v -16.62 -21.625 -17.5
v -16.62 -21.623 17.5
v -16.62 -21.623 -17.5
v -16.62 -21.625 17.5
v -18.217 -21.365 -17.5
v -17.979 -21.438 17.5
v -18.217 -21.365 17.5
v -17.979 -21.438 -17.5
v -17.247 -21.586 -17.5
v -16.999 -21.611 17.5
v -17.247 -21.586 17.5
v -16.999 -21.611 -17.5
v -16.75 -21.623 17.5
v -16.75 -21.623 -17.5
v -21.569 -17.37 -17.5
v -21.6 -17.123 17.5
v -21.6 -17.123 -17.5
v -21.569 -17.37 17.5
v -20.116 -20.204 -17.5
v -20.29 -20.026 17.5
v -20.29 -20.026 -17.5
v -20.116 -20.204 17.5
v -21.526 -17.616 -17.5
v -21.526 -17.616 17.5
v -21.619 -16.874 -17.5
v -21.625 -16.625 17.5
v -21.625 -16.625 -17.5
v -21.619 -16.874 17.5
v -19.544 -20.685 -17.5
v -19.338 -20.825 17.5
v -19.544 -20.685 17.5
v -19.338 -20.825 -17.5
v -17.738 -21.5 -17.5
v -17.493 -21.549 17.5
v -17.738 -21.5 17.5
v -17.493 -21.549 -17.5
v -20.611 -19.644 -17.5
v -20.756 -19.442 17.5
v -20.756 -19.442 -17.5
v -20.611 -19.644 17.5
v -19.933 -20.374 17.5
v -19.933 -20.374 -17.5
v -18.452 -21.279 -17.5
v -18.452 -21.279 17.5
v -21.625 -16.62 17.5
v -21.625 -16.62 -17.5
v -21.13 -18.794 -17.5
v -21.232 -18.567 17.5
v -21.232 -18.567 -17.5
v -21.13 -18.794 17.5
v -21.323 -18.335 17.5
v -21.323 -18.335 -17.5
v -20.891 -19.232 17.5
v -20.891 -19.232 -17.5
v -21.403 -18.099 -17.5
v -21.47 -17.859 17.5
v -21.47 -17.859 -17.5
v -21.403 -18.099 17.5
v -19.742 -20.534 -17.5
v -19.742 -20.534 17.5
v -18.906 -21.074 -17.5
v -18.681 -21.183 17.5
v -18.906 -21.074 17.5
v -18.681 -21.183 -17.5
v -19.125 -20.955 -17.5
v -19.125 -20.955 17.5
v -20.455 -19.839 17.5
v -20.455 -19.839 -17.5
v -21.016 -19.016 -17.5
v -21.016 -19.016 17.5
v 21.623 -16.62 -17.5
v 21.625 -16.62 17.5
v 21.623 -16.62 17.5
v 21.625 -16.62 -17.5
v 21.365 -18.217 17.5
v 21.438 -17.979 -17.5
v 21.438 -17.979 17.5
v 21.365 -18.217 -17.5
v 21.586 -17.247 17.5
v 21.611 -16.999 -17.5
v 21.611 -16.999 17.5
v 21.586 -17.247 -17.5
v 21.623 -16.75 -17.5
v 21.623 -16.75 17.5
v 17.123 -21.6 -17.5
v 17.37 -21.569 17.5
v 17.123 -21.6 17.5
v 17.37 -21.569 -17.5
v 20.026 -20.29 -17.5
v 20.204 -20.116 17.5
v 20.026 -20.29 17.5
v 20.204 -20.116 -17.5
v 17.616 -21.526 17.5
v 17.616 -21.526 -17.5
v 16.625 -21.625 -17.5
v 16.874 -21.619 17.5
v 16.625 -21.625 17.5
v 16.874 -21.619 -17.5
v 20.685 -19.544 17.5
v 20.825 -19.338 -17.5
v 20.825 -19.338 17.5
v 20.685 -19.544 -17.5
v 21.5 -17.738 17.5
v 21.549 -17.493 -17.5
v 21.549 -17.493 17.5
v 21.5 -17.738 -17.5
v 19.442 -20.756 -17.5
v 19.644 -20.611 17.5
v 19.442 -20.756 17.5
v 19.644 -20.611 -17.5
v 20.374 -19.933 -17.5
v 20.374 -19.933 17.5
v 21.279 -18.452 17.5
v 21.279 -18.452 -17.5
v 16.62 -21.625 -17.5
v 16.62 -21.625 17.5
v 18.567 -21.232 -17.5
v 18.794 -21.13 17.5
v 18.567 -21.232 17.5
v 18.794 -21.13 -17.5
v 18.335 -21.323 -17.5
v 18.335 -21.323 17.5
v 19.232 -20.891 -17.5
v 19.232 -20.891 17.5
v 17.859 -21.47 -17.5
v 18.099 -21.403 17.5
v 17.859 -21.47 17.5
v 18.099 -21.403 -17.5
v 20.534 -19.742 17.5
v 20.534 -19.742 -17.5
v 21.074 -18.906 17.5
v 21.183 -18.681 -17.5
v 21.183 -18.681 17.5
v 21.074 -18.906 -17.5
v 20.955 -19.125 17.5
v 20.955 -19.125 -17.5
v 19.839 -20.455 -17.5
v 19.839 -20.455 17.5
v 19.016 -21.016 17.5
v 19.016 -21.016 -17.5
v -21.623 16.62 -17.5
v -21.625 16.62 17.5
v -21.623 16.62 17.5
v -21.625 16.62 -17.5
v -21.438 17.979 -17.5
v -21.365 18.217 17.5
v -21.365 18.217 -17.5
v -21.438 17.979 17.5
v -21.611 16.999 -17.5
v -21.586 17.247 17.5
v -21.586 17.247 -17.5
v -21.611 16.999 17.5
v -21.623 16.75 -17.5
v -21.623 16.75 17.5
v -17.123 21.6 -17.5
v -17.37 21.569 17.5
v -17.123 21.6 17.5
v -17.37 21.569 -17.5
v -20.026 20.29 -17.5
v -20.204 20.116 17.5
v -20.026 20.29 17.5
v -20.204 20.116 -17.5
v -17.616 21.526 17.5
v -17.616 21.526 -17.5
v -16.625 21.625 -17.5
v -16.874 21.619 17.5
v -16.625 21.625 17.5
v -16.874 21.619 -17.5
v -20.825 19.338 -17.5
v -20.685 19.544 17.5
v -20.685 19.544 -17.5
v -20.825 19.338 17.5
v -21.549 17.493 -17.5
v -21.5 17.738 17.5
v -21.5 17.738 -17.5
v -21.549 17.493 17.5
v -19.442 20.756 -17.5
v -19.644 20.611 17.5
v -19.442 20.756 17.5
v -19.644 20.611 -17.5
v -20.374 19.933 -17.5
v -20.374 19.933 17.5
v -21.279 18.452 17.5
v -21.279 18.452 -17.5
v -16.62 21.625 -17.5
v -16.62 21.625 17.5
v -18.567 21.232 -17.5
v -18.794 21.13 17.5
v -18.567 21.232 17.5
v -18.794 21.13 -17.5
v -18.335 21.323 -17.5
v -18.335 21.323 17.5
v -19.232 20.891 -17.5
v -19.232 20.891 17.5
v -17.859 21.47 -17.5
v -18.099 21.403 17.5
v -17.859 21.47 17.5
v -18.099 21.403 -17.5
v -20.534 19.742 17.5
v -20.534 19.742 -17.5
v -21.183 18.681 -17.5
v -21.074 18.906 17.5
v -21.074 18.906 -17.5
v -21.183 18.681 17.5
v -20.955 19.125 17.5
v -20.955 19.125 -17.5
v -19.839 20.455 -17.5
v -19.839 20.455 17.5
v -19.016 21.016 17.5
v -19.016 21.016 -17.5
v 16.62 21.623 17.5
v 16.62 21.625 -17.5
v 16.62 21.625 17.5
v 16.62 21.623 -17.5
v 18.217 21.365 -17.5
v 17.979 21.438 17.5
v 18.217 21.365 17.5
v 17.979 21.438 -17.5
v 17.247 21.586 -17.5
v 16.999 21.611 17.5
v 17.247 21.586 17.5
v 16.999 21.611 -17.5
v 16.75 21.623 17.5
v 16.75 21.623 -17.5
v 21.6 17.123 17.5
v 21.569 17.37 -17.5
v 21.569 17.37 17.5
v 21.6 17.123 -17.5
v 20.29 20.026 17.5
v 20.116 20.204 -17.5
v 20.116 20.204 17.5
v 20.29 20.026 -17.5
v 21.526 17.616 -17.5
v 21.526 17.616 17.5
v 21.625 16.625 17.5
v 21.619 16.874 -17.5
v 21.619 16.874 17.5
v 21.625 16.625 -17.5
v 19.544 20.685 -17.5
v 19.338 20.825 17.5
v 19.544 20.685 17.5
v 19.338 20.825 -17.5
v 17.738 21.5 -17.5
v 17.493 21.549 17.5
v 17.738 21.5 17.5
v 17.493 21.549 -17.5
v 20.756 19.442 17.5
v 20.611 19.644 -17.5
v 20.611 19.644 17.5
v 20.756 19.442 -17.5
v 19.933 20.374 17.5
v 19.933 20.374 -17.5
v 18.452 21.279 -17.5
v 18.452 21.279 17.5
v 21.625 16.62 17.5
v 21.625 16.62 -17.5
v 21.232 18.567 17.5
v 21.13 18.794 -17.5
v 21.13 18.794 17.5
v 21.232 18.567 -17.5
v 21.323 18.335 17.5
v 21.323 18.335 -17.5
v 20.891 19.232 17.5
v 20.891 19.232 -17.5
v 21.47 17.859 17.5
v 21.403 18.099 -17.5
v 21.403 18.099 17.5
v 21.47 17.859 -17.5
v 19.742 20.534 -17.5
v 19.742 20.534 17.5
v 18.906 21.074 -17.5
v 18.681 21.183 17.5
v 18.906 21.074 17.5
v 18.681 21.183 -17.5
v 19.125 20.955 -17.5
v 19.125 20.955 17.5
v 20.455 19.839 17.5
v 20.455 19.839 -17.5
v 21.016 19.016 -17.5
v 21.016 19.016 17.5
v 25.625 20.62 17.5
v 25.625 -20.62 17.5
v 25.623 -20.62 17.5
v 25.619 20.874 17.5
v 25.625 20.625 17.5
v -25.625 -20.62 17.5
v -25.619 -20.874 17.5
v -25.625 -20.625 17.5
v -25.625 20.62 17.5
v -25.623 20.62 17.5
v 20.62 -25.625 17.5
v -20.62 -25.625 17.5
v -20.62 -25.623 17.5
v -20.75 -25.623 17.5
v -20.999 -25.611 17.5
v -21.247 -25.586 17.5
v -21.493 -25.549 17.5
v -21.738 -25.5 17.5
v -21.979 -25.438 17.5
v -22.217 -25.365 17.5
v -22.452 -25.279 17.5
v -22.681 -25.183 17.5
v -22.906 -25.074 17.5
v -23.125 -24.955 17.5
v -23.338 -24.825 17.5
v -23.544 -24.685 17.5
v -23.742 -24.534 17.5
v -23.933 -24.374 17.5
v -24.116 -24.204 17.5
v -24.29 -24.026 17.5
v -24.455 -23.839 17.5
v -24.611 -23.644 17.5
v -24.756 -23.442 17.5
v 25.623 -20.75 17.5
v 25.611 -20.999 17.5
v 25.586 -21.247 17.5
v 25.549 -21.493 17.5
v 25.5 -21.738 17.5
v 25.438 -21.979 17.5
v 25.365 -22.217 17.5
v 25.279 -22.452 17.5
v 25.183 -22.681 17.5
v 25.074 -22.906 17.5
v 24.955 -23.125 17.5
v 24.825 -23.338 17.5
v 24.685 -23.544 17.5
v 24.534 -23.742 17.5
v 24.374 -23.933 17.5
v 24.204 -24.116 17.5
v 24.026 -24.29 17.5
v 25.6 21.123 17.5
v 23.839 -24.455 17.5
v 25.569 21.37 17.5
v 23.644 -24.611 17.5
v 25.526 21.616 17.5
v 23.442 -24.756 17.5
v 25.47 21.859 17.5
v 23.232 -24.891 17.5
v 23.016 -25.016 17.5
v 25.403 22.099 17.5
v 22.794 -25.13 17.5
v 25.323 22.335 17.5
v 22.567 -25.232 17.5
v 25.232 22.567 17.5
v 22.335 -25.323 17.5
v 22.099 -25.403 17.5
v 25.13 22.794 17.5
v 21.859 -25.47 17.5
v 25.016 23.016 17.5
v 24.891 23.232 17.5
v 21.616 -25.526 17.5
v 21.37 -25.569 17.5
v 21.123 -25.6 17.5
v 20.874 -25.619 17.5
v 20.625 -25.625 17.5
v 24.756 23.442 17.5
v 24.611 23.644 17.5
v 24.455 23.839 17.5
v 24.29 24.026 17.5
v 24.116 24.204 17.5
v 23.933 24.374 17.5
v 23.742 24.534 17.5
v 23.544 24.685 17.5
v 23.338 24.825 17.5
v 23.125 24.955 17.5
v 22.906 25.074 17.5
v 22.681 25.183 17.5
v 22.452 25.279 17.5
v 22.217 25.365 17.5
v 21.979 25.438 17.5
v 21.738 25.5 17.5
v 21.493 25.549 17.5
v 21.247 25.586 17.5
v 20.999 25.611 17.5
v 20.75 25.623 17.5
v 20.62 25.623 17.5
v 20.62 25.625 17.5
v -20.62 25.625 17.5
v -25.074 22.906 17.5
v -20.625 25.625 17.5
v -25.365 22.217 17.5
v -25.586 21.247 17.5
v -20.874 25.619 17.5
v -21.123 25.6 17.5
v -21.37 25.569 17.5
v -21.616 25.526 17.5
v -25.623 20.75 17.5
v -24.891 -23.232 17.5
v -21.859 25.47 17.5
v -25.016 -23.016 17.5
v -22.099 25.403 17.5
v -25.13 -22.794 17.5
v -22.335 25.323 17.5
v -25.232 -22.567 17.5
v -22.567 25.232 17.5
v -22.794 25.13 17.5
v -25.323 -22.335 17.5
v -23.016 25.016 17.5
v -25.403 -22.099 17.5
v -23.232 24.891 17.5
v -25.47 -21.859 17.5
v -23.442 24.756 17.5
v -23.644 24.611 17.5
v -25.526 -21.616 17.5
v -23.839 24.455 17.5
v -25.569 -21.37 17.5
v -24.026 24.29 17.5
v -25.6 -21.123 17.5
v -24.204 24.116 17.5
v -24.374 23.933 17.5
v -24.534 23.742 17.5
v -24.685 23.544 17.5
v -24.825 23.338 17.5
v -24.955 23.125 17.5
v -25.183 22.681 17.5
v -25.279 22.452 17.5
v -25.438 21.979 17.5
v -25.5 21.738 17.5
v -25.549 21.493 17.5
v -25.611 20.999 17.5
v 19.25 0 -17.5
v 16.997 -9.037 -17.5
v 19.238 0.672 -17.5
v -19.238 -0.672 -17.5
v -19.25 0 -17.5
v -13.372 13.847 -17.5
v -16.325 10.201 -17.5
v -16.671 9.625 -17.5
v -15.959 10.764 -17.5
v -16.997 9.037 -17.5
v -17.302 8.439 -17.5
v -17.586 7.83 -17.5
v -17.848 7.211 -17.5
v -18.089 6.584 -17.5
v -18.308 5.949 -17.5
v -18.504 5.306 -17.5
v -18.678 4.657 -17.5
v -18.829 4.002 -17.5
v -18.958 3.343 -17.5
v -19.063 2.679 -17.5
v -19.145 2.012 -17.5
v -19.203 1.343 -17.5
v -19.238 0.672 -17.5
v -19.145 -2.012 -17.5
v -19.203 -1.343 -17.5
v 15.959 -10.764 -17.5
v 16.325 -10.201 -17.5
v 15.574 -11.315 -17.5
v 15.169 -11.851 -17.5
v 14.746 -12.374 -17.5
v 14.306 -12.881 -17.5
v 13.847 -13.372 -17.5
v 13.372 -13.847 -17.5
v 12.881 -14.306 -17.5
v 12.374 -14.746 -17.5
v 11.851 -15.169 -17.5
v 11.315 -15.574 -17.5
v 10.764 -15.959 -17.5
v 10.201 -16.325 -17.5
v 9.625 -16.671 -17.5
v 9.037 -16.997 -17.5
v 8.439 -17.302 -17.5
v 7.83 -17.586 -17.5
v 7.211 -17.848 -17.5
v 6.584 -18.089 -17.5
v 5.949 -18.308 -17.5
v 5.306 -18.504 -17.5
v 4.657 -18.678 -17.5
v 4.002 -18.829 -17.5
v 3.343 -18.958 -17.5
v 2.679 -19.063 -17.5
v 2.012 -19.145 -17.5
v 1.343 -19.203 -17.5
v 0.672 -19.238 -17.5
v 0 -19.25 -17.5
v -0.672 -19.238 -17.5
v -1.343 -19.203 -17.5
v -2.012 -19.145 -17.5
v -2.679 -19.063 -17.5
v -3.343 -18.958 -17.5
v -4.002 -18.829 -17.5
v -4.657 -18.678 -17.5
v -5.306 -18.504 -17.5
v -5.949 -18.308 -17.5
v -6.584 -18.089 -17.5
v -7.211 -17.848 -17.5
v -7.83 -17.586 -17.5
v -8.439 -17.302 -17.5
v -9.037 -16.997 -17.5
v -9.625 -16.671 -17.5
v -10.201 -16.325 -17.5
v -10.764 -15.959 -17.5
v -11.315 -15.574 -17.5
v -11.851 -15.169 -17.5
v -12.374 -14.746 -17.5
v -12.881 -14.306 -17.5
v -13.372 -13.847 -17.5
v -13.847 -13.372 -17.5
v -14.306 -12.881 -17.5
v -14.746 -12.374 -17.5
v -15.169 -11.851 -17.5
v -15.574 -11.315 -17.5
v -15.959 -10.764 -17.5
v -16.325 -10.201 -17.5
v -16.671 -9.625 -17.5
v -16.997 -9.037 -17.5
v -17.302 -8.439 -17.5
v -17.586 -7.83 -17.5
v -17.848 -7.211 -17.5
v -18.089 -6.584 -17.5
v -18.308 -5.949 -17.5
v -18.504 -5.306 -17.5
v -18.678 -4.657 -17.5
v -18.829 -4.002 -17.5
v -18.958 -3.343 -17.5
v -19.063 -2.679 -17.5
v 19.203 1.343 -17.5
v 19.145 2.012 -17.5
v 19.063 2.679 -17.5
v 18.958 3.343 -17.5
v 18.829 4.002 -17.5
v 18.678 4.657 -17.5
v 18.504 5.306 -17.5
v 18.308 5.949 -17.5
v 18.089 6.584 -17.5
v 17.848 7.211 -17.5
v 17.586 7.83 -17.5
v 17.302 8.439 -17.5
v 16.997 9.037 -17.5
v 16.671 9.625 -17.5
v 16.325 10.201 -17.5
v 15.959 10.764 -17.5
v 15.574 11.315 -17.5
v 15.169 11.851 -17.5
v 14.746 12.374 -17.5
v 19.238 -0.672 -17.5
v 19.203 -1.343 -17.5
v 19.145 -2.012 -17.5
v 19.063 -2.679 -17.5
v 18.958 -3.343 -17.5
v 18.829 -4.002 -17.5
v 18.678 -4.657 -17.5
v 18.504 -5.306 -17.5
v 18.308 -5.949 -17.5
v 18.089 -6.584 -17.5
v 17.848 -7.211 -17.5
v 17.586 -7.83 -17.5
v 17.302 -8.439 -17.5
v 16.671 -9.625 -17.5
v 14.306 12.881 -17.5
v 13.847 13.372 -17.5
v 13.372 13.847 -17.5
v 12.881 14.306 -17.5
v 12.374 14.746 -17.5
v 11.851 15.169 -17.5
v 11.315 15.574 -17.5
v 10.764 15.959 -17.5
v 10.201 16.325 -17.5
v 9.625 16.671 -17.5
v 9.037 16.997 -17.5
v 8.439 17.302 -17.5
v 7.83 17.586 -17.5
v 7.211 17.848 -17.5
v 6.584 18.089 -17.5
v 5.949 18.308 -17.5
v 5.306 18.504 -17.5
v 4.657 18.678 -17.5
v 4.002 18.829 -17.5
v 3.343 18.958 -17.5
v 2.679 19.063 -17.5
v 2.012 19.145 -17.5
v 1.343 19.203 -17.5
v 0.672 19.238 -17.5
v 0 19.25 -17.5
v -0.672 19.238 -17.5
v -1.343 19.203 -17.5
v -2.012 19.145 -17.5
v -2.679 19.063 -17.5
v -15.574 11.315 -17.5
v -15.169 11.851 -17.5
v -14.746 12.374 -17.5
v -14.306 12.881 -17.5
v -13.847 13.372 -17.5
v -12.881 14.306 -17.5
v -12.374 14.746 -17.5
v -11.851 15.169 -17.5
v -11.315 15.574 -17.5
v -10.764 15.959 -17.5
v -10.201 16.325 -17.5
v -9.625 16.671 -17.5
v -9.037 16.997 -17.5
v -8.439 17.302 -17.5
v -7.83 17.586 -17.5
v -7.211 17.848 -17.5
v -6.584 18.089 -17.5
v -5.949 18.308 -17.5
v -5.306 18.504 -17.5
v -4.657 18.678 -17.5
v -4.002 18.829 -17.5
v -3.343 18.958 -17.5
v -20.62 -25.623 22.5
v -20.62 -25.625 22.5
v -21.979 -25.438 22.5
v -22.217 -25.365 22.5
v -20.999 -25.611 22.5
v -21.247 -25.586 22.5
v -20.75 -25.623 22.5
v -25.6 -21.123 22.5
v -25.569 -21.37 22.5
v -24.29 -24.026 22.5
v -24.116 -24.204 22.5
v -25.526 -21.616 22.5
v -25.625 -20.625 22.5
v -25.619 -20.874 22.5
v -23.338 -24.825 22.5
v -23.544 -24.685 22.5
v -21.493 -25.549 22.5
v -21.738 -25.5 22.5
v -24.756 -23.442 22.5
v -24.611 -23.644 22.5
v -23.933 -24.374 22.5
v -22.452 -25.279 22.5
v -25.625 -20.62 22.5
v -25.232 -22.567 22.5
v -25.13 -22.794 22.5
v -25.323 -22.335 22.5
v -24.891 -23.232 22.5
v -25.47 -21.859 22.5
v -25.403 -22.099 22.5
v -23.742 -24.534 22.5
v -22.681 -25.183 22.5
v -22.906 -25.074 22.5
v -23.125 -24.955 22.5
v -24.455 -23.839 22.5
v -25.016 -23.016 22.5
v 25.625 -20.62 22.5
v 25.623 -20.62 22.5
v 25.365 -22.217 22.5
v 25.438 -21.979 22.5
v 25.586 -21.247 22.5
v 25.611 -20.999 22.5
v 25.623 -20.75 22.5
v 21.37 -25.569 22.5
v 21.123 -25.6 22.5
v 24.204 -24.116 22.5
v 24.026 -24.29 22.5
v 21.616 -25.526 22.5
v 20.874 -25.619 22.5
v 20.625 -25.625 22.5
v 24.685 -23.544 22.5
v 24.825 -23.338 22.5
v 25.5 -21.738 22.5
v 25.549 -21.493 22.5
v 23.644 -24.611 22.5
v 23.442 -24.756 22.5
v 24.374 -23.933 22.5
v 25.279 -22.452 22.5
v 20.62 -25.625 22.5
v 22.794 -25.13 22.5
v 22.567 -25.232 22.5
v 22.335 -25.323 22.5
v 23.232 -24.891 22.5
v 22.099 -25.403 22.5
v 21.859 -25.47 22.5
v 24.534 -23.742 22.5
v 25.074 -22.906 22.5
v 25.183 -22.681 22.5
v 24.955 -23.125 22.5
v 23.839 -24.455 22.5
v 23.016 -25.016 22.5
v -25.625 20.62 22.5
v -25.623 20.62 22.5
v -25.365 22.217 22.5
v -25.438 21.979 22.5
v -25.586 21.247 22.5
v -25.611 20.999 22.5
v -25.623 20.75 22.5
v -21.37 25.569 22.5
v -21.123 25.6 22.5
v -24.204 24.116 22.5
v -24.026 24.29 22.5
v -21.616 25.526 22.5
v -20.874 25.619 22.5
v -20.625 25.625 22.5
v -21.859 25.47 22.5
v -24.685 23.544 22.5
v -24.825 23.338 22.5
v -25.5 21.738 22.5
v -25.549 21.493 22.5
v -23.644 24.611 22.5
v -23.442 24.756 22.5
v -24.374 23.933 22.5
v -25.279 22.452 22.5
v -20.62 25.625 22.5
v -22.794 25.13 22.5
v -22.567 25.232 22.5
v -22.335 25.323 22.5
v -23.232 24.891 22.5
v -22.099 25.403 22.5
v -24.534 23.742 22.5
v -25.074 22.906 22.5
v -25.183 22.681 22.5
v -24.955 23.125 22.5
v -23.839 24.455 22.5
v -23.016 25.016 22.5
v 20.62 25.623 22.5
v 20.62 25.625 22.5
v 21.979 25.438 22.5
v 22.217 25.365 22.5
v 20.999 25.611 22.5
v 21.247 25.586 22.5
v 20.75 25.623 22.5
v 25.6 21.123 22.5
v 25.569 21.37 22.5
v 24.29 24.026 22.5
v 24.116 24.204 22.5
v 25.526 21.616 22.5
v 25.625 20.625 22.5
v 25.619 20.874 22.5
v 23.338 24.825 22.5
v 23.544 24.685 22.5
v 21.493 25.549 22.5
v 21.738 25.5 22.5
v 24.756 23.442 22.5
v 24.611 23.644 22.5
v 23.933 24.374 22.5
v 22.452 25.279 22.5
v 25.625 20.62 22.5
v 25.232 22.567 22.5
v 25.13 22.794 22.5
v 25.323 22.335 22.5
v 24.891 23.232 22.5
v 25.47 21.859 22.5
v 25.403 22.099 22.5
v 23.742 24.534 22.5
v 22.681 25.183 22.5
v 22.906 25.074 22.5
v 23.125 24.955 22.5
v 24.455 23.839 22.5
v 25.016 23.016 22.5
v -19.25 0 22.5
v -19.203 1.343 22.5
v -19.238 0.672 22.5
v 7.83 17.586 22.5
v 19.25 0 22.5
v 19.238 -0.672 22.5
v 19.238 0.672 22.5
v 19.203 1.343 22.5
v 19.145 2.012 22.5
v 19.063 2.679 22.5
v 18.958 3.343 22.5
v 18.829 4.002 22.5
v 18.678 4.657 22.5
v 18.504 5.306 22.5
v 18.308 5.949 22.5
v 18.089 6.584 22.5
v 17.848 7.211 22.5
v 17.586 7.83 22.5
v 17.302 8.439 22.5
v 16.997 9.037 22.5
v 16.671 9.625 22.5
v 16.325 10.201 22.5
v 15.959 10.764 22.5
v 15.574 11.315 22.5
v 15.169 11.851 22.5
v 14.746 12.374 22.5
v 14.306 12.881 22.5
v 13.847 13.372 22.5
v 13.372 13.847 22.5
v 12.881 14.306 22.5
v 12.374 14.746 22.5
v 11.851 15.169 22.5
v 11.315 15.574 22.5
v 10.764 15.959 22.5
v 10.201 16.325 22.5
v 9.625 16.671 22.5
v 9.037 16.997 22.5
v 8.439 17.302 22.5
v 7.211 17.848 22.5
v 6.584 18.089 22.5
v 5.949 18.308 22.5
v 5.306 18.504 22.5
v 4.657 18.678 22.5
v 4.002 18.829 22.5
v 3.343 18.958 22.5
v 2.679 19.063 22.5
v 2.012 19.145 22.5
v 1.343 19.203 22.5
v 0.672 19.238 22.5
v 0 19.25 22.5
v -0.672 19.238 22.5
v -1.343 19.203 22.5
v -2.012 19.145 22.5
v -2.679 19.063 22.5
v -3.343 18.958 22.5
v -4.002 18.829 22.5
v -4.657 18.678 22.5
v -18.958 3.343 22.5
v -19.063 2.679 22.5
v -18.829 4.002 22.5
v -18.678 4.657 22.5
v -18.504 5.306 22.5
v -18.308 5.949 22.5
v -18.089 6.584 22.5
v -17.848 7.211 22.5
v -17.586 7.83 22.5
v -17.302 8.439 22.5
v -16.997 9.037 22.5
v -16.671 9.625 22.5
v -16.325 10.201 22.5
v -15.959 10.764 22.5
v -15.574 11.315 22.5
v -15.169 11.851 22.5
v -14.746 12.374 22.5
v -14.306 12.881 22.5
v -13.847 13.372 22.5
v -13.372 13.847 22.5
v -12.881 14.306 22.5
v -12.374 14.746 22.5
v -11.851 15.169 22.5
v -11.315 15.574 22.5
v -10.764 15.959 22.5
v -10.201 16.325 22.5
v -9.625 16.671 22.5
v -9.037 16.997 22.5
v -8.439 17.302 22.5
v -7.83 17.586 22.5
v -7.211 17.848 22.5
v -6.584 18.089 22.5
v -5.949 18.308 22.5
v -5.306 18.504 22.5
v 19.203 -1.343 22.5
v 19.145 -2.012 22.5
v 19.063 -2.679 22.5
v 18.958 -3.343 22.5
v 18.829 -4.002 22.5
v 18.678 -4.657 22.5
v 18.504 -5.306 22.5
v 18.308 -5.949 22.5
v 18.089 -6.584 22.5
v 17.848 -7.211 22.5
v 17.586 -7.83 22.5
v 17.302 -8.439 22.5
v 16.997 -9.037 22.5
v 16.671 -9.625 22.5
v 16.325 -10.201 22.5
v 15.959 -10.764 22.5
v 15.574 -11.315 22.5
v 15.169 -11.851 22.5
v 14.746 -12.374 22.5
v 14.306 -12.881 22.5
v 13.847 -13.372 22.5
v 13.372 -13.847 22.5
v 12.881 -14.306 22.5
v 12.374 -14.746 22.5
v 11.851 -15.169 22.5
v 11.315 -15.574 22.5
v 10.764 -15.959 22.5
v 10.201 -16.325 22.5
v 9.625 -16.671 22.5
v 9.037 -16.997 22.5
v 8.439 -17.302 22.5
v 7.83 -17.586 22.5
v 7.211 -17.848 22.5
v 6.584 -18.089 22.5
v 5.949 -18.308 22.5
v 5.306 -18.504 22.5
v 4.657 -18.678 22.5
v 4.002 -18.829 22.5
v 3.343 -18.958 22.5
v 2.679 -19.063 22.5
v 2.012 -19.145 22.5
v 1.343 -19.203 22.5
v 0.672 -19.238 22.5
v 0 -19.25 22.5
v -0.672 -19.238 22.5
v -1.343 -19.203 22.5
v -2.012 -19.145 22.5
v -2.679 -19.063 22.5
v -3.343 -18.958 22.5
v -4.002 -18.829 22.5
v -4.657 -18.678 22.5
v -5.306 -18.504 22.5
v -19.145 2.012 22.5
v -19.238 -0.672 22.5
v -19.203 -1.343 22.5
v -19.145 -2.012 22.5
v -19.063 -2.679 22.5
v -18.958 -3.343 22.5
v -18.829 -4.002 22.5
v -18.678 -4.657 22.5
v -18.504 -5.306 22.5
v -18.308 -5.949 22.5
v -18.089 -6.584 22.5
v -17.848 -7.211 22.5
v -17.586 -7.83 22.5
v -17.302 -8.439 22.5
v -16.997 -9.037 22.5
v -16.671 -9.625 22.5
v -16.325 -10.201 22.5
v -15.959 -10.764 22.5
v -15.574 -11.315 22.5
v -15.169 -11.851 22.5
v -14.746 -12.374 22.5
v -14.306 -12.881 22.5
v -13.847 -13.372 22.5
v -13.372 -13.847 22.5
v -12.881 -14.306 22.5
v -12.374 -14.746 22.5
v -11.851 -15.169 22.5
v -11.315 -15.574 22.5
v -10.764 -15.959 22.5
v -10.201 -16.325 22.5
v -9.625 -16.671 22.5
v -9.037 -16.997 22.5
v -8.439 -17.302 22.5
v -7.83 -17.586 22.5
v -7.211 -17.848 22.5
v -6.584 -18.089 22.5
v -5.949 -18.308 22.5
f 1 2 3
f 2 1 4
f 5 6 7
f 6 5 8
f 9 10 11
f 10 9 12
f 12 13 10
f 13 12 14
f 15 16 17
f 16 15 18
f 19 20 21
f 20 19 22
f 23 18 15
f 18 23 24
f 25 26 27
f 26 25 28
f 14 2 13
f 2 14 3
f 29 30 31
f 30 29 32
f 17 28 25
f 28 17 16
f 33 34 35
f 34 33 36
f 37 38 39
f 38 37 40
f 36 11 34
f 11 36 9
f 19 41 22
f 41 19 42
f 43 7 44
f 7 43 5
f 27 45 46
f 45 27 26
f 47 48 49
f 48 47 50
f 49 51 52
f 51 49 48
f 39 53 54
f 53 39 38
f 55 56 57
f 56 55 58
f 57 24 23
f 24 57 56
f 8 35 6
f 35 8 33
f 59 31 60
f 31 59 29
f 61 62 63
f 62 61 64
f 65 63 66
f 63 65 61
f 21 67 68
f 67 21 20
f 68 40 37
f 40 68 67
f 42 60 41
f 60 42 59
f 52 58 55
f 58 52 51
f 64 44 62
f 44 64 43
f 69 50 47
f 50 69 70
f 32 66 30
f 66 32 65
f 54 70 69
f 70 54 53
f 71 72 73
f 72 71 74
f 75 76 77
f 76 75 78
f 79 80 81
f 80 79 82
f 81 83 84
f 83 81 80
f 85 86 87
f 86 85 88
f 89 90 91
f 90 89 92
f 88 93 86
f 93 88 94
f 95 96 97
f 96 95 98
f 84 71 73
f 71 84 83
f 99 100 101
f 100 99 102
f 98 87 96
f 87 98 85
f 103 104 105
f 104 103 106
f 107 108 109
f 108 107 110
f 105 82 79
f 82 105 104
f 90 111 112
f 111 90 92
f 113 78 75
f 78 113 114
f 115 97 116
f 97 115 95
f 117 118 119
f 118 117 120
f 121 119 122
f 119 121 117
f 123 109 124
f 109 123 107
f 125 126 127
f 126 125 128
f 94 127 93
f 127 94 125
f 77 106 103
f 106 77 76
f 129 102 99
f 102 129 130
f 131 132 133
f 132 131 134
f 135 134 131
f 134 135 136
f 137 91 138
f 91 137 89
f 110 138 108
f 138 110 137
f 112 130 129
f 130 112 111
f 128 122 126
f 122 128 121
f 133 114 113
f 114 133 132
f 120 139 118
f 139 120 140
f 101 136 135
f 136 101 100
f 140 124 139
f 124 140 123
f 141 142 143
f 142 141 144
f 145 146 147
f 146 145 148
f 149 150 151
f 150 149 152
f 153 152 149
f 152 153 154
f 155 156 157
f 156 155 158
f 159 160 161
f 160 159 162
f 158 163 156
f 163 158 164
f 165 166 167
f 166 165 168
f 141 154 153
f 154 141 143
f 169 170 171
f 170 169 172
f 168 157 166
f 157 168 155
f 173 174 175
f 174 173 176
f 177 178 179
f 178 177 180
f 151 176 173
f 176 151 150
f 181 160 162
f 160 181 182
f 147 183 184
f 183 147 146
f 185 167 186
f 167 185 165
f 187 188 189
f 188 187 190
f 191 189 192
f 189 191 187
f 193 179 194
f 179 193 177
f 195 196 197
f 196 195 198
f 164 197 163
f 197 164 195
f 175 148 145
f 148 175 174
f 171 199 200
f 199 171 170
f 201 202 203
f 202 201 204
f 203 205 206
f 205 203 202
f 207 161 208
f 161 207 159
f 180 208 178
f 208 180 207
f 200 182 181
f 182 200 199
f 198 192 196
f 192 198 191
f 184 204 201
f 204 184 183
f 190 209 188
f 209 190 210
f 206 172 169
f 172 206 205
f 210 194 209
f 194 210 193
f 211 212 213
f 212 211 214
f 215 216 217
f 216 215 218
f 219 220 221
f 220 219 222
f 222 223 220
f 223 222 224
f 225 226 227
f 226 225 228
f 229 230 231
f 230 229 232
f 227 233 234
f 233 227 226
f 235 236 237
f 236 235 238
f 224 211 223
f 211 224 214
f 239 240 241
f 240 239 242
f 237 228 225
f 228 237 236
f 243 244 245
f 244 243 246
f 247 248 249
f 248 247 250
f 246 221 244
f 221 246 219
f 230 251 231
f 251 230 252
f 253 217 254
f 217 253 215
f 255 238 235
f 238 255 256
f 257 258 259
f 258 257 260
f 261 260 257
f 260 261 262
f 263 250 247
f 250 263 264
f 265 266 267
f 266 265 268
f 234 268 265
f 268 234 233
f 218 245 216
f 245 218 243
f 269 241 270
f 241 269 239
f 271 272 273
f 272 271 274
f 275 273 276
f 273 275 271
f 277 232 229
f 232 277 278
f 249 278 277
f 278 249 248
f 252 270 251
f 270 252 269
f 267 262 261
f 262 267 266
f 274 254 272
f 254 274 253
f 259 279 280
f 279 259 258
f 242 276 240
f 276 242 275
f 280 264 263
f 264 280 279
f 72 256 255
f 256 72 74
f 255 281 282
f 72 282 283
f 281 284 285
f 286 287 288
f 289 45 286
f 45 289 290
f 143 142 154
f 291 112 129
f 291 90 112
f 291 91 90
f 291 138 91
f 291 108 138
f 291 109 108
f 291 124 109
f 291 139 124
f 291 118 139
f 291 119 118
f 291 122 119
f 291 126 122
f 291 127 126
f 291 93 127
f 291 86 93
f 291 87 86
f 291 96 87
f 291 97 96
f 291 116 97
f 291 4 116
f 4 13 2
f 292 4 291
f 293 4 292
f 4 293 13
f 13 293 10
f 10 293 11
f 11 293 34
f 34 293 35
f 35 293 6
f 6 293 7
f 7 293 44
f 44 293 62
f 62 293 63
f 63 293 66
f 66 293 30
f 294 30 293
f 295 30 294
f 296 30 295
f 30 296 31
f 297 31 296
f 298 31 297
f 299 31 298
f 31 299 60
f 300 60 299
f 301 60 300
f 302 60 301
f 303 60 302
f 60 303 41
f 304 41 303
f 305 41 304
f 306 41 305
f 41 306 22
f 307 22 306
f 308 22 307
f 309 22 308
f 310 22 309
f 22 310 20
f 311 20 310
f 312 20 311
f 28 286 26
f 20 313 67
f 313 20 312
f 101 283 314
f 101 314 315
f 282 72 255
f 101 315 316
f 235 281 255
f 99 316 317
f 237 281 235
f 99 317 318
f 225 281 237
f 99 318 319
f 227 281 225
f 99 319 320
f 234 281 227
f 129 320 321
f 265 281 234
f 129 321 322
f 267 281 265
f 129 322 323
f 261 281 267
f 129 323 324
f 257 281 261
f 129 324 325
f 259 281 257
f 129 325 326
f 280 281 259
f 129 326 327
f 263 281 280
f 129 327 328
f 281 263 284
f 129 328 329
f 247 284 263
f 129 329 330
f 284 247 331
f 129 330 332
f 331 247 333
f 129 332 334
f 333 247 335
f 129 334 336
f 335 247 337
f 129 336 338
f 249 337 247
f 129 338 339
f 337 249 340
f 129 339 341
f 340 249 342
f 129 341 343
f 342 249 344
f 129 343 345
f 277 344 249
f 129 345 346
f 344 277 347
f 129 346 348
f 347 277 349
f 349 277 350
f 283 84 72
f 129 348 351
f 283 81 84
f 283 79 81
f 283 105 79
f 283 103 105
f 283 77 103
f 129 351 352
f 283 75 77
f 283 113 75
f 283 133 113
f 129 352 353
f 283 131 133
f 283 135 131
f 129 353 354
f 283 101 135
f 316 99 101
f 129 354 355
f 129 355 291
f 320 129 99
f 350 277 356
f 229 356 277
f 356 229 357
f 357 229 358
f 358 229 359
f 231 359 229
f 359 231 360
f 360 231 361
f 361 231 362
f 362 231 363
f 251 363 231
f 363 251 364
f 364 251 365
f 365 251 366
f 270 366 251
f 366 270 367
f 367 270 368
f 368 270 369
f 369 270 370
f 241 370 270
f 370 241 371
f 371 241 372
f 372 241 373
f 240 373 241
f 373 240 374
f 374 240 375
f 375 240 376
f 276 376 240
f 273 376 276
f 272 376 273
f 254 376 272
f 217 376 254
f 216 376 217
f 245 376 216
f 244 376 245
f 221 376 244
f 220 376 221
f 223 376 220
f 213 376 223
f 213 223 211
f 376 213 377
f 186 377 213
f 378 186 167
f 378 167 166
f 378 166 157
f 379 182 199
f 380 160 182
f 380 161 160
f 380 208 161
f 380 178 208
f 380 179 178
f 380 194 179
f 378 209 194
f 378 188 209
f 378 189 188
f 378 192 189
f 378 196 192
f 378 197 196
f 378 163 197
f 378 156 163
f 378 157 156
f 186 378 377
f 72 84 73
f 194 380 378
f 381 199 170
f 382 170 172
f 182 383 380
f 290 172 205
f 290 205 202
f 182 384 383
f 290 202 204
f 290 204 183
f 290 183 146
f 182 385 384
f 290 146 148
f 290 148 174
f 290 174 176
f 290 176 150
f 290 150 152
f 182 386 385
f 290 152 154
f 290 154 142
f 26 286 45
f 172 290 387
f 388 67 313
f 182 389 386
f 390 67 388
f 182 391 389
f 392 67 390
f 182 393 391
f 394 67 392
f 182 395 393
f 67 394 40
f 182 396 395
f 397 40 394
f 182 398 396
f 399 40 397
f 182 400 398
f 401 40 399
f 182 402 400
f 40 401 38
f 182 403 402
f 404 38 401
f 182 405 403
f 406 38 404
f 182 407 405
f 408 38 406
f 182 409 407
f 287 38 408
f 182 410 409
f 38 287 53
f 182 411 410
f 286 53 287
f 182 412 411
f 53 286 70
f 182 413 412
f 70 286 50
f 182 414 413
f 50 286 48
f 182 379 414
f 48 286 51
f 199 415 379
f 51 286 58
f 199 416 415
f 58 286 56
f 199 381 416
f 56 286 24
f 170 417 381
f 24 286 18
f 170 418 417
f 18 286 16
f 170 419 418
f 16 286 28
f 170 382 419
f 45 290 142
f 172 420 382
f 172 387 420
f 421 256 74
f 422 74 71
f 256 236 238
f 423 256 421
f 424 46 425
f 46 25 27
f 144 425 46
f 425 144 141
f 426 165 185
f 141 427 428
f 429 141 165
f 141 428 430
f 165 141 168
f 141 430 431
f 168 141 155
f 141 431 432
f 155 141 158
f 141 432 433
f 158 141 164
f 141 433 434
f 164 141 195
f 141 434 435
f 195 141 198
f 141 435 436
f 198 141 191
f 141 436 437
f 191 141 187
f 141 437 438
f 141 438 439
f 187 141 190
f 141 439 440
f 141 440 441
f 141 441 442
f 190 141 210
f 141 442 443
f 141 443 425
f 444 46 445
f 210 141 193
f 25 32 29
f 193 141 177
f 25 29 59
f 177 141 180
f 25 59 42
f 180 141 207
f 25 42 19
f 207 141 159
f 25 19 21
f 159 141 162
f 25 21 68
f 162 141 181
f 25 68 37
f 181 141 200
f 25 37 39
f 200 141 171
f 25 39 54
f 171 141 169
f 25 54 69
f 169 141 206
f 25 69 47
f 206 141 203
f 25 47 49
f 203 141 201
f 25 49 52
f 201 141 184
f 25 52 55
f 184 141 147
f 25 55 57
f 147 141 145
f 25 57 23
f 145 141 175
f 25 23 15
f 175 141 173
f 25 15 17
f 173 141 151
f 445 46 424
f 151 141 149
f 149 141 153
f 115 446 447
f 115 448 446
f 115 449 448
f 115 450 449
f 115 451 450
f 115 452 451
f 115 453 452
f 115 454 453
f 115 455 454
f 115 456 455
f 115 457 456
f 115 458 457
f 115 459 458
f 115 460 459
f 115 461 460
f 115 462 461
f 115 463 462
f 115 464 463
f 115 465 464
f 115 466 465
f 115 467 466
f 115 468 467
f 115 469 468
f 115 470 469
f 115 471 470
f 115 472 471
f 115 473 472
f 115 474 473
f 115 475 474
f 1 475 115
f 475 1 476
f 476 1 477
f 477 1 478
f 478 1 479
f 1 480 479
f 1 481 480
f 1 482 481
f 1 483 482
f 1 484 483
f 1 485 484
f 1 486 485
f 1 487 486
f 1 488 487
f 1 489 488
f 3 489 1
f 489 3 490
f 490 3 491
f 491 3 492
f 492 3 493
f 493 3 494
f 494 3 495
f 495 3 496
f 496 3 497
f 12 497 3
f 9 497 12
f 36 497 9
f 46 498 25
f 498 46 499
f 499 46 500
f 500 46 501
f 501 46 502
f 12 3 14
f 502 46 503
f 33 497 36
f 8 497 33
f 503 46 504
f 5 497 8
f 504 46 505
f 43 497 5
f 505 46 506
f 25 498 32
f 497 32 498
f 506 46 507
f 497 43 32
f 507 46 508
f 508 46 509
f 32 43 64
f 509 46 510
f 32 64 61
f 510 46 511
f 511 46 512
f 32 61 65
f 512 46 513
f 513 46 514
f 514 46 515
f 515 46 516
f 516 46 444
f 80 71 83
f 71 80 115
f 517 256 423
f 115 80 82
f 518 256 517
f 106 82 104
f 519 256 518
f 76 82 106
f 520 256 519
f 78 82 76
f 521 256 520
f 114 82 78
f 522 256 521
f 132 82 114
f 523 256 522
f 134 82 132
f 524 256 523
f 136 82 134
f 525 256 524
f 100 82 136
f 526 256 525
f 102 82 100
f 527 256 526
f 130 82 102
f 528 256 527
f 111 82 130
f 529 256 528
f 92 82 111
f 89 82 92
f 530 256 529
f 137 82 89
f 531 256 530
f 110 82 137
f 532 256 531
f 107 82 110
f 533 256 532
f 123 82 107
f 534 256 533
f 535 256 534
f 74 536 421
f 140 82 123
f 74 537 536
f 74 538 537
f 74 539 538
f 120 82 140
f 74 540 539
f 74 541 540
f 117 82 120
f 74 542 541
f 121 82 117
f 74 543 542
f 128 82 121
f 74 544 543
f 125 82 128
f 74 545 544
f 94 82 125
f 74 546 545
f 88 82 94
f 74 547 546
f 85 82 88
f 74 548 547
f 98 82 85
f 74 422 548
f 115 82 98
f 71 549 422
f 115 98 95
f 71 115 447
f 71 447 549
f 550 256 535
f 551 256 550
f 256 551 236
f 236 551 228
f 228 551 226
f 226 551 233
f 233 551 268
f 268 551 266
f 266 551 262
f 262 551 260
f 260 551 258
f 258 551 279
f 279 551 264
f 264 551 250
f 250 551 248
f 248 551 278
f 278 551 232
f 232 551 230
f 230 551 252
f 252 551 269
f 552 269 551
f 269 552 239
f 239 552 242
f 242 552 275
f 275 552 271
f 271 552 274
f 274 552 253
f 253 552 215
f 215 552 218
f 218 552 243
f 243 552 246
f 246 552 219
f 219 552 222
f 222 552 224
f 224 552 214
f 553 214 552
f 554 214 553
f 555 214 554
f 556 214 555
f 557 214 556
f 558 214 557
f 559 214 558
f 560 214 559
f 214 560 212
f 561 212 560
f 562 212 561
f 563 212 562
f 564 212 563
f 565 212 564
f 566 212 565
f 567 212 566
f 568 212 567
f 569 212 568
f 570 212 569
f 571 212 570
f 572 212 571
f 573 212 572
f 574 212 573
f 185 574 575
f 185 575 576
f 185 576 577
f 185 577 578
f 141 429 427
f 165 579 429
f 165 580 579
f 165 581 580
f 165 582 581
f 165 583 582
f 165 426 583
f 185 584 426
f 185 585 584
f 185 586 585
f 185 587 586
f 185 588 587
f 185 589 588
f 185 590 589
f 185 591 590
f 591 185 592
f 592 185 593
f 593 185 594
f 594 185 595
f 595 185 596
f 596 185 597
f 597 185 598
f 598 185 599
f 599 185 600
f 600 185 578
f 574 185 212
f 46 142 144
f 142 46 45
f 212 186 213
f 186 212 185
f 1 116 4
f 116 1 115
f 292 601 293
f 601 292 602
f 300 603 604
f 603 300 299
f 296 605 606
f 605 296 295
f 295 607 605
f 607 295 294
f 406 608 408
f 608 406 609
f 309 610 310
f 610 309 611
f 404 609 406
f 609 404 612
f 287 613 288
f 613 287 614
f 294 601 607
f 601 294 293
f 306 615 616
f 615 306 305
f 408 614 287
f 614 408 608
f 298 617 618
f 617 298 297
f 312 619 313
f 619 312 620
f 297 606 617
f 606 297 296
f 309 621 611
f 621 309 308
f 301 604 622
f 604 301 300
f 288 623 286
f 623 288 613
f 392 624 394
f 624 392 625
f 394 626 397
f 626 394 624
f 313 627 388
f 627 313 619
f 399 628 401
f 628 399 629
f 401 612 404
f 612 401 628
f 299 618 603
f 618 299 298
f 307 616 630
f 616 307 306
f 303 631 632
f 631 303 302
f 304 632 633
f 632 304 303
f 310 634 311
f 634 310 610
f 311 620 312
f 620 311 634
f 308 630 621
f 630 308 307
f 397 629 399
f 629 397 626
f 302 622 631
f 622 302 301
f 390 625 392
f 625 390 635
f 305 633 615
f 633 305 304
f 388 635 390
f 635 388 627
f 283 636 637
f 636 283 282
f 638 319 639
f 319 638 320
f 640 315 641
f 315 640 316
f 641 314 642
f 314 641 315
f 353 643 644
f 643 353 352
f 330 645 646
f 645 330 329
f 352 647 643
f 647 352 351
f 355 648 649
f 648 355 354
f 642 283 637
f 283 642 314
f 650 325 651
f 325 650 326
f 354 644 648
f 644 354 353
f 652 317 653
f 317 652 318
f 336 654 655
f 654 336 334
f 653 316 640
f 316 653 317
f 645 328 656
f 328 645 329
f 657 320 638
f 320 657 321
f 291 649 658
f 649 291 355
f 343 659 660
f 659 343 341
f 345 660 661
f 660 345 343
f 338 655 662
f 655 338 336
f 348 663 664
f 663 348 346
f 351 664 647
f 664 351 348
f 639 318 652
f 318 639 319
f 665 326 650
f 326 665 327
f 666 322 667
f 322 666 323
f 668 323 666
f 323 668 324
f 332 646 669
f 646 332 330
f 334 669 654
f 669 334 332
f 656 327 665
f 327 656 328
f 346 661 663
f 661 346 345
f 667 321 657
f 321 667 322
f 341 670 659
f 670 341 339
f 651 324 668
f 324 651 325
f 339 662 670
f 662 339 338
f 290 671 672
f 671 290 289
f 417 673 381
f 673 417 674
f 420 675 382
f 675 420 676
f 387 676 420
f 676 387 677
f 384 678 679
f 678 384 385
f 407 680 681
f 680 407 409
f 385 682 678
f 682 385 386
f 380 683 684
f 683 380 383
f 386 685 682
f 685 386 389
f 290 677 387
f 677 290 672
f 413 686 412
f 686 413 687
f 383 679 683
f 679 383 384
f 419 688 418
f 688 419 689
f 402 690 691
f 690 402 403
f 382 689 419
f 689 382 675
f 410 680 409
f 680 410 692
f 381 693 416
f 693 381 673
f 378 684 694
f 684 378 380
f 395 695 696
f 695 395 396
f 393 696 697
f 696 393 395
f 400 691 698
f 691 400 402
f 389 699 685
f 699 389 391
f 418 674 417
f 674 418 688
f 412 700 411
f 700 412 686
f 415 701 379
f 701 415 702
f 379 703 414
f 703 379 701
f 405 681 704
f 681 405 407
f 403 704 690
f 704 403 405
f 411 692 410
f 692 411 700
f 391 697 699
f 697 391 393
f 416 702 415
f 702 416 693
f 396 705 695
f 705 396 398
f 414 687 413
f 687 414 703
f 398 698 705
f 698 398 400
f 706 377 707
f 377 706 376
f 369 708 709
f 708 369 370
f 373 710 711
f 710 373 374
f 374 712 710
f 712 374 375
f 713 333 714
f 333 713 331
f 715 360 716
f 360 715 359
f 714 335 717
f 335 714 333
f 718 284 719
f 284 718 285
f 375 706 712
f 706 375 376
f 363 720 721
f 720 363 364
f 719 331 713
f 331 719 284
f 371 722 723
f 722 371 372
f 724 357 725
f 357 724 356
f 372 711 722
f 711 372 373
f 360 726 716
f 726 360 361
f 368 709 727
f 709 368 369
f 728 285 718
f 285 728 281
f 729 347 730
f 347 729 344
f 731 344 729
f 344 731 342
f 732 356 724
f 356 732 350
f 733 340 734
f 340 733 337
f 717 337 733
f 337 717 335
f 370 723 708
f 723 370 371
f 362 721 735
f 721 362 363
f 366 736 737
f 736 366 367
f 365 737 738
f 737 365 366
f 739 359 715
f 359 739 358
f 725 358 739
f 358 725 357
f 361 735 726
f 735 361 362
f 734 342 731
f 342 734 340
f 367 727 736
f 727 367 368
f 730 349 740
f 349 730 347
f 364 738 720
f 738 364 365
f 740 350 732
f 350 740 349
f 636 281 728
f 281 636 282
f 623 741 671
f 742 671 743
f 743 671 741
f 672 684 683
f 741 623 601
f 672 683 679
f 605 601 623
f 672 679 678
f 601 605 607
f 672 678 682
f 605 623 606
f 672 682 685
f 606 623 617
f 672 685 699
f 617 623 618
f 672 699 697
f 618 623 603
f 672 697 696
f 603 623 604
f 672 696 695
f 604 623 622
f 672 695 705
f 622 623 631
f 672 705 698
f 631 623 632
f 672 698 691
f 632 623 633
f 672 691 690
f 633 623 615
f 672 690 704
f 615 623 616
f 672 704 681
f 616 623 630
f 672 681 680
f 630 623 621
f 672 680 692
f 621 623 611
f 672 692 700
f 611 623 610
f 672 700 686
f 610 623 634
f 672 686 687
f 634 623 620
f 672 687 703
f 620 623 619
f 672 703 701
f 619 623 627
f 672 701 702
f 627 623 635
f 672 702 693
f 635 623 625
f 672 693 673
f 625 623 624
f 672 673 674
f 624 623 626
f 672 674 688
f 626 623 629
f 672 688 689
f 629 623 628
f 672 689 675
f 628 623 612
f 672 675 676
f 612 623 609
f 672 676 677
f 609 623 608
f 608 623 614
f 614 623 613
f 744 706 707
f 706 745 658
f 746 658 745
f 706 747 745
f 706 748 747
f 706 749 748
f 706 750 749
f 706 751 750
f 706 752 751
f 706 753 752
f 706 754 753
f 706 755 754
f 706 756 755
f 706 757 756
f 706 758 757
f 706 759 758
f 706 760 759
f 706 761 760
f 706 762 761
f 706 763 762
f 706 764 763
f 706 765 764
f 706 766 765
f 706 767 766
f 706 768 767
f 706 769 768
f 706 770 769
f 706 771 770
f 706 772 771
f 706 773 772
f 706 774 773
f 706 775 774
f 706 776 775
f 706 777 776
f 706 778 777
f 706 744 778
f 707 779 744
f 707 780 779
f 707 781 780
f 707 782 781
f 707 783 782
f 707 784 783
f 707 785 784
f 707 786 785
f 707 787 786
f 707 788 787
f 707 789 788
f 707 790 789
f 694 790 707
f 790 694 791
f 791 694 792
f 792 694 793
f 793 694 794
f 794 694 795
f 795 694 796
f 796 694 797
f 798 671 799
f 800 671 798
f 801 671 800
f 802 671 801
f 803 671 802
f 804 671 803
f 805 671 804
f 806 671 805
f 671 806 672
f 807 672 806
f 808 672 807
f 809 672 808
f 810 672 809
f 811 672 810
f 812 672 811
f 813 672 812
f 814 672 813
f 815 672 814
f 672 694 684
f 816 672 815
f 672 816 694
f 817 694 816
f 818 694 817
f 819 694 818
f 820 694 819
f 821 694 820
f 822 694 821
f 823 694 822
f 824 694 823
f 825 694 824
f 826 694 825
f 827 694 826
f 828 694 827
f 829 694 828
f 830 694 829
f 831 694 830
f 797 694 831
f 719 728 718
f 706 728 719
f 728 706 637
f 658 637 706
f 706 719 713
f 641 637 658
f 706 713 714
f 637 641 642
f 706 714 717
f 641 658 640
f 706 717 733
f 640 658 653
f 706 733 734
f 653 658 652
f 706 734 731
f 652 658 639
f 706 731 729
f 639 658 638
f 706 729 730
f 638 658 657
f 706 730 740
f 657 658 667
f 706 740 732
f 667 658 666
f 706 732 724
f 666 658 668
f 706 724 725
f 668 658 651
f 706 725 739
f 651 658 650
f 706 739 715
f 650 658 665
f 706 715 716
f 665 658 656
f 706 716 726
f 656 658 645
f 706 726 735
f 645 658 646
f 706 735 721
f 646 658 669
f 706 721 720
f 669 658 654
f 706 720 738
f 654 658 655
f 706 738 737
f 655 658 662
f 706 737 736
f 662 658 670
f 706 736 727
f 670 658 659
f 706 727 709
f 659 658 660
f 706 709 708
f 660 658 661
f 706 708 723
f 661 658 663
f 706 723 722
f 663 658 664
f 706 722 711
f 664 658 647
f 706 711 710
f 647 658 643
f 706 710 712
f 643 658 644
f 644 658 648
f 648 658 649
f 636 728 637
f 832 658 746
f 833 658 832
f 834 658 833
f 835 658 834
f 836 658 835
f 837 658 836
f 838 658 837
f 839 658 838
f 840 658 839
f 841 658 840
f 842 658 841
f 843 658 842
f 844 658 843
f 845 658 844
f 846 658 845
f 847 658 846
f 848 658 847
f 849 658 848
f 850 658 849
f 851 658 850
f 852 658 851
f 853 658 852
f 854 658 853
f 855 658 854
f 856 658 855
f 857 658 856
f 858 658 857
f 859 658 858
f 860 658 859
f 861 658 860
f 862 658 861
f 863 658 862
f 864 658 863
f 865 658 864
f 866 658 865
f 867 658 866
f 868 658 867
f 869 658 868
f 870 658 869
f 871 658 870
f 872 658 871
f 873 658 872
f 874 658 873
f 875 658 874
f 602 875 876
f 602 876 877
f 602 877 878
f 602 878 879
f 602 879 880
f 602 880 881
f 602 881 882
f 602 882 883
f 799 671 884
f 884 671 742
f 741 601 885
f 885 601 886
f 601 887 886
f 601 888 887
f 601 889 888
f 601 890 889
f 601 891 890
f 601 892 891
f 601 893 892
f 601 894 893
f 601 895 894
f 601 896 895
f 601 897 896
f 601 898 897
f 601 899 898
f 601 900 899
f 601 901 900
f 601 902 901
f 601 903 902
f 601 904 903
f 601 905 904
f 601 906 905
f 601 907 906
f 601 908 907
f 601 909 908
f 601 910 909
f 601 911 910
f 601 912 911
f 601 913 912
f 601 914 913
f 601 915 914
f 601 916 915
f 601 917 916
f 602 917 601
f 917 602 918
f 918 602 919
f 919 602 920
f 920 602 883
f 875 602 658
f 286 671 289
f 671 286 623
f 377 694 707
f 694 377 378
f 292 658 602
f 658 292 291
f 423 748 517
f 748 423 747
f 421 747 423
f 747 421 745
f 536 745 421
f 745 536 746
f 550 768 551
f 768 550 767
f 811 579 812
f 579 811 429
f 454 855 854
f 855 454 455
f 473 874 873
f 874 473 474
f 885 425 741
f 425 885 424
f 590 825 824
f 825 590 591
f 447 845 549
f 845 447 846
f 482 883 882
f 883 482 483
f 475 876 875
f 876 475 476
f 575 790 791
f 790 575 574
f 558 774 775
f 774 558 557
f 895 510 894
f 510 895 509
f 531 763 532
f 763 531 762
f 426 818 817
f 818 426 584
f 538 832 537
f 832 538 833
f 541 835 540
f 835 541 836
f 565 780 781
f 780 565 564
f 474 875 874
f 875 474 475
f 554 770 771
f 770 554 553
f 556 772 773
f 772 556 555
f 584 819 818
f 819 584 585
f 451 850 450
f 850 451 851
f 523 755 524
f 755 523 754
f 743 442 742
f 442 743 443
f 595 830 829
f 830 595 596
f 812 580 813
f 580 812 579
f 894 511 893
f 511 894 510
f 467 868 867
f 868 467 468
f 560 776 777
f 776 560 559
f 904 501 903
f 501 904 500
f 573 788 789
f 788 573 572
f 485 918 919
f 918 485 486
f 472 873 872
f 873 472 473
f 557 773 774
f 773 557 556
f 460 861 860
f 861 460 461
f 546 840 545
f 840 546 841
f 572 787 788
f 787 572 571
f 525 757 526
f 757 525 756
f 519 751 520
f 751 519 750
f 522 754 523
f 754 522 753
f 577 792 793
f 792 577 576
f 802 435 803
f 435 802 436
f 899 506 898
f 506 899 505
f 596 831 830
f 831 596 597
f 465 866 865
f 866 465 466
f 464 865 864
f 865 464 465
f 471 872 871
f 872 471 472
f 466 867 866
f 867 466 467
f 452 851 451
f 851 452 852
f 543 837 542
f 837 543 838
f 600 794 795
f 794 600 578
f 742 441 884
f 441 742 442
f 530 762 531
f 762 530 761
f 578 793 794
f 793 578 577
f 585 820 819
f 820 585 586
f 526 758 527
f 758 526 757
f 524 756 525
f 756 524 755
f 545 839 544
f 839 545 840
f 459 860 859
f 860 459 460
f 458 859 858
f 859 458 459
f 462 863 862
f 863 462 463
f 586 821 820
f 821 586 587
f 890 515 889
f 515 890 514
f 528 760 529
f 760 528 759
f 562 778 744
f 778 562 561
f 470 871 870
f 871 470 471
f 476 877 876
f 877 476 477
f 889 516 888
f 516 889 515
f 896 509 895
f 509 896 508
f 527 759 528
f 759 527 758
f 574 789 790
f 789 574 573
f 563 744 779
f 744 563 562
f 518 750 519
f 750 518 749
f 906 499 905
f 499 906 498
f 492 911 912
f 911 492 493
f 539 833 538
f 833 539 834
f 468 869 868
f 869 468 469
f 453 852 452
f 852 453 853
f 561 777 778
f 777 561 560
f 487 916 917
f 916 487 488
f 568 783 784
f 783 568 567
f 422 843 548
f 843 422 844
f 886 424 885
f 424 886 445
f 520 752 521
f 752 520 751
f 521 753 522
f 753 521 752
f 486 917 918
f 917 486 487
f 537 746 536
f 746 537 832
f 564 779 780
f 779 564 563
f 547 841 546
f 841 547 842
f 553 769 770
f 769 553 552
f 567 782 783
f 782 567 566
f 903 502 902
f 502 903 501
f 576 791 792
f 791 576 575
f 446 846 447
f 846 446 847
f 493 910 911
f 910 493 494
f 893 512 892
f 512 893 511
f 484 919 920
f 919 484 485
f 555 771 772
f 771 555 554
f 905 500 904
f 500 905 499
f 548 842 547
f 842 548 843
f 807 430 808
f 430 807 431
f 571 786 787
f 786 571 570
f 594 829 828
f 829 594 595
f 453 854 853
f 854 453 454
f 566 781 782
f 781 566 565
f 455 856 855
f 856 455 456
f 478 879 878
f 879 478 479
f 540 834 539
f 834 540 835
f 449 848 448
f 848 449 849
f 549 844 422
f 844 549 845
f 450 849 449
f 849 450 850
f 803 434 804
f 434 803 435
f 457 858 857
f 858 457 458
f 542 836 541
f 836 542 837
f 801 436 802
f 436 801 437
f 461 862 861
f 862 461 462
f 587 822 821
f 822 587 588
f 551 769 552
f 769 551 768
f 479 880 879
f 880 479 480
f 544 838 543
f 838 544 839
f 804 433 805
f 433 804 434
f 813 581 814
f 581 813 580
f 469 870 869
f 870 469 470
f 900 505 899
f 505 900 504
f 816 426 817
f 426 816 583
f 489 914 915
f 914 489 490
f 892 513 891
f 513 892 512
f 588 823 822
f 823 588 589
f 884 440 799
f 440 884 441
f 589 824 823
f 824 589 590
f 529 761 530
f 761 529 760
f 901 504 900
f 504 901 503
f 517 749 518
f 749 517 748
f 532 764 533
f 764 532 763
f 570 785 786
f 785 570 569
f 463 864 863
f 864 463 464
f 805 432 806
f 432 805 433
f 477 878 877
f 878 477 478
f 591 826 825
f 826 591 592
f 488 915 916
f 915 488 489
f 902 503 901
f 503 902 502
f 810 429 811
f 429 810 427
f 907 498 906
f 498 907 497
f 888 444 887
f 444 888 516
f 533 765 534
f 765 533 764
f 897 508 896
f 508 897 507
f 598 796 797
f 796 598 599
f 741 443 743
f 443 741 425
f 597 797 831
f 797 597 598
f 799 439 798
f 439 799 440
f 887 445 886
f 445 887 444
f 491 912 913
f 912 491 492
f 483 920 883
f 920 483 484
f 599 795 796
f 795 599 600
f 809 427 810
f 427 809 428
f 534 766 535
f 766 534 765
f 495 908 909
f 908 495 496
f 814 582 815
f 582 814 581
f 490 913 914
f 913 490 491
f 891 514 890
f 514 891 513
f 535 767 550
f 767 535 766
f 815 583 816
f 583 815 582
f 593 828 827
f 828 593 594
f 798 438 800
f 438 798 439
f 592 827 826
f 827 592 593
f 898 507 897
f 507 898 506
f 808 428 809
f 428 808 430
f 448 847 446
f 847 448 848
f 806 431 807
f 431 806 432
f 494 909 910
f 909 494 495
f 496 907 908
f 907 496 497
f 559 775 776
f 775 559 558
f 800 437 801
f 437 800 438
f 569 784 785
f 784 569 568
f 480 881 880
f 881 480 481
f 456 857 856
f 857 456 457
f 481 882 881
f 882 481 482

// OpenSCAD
// file: rounded.scad
// Rounded cube library functionality. This was previously in a
// separate file that was imported at the top. This has been
// moved into the main SCAD file because thingiverse.com will
// only let you upload a single SCAD file if you want the
// "customizer" feature to work that allows you to tweak the
// parameters on the website directly.

module inverseCorner(radius, length) {
    difference() {
        cube([radius + 0.01, radius + 0.01, length], center = true);

        translate([radius / 2, radius / 2, 0])
            cylinder(r = radius, h = length + 1, center = true);
    }
}

module roundedCube(width, depth, height, radius) {
    difference() {
        cube([width, depth, height], center = true);

        // Front left
        translate([(-width / 2) + (radius / 2),
                   (-depth / 2) + (radius / 2),
                   0])
            inverseCorner(radius=radius, length=depth * 2);
        
        // Front right
        translate([(width / 2) - (radius / 2),
                  (-depth / 2) + (radius / 2),
                  0])
            rotate([0, 0, 90])
                inverseCorner(radius=radius, length=depth * 2);
        
        // Back left
        translate([(-width / 2) + (radius / 2),
                   (depth / 2) - (radius / 2),
                   0])
            rotate([0, 0, -90])
                inverseCorner(radius=radius, length=height * 2);
        
        // Back right
        translate([(width / 2) - (radius / 2),
                   (depth / 2) - (radius / 2),
                    0])
            rotate([0, 0, 180])
                inverseCorner(radius=radius, length=depth * 2);
    }
}
// main file
// All units in Millimeters
use <rounded.scad>

// smoother rouding graphics
$fa = 2;
$fs = 0.25;

adapter_width = 43.25;
adapter_height = 35;
adapter_depth = 43.25;


umbrella_hole_diameter = 38.5;
corner_radius = 5;

difference() {
    group() {
        color("white") {
           roundedCube(adapter_width, 
                adapter_depth,
                adapter_height,
                corner_radius);
        }

        // Lip of top of adapter
        lip_size = 8;
        lip_height = 5;

        lip_cube_width = adapter_width + lip_size;
        lip_cube_depth = adapter_depth + lip_size;
        lip_z_offset = (adapter_height / 2) + (lip_height / 2);

        translate([0, 0, lip_z_offset]) {
            color("red"){
                roundedCube(lip_cube_width, 
                    lip_cube_depth,
                    lip_height,
                    corner_radius);
            }
        }

    } // end of group() 
    
    cylinder(h = adapter_height * 2,
        d = umbrella_hole_diameter,
        center = true);
    
} // end of difference();
